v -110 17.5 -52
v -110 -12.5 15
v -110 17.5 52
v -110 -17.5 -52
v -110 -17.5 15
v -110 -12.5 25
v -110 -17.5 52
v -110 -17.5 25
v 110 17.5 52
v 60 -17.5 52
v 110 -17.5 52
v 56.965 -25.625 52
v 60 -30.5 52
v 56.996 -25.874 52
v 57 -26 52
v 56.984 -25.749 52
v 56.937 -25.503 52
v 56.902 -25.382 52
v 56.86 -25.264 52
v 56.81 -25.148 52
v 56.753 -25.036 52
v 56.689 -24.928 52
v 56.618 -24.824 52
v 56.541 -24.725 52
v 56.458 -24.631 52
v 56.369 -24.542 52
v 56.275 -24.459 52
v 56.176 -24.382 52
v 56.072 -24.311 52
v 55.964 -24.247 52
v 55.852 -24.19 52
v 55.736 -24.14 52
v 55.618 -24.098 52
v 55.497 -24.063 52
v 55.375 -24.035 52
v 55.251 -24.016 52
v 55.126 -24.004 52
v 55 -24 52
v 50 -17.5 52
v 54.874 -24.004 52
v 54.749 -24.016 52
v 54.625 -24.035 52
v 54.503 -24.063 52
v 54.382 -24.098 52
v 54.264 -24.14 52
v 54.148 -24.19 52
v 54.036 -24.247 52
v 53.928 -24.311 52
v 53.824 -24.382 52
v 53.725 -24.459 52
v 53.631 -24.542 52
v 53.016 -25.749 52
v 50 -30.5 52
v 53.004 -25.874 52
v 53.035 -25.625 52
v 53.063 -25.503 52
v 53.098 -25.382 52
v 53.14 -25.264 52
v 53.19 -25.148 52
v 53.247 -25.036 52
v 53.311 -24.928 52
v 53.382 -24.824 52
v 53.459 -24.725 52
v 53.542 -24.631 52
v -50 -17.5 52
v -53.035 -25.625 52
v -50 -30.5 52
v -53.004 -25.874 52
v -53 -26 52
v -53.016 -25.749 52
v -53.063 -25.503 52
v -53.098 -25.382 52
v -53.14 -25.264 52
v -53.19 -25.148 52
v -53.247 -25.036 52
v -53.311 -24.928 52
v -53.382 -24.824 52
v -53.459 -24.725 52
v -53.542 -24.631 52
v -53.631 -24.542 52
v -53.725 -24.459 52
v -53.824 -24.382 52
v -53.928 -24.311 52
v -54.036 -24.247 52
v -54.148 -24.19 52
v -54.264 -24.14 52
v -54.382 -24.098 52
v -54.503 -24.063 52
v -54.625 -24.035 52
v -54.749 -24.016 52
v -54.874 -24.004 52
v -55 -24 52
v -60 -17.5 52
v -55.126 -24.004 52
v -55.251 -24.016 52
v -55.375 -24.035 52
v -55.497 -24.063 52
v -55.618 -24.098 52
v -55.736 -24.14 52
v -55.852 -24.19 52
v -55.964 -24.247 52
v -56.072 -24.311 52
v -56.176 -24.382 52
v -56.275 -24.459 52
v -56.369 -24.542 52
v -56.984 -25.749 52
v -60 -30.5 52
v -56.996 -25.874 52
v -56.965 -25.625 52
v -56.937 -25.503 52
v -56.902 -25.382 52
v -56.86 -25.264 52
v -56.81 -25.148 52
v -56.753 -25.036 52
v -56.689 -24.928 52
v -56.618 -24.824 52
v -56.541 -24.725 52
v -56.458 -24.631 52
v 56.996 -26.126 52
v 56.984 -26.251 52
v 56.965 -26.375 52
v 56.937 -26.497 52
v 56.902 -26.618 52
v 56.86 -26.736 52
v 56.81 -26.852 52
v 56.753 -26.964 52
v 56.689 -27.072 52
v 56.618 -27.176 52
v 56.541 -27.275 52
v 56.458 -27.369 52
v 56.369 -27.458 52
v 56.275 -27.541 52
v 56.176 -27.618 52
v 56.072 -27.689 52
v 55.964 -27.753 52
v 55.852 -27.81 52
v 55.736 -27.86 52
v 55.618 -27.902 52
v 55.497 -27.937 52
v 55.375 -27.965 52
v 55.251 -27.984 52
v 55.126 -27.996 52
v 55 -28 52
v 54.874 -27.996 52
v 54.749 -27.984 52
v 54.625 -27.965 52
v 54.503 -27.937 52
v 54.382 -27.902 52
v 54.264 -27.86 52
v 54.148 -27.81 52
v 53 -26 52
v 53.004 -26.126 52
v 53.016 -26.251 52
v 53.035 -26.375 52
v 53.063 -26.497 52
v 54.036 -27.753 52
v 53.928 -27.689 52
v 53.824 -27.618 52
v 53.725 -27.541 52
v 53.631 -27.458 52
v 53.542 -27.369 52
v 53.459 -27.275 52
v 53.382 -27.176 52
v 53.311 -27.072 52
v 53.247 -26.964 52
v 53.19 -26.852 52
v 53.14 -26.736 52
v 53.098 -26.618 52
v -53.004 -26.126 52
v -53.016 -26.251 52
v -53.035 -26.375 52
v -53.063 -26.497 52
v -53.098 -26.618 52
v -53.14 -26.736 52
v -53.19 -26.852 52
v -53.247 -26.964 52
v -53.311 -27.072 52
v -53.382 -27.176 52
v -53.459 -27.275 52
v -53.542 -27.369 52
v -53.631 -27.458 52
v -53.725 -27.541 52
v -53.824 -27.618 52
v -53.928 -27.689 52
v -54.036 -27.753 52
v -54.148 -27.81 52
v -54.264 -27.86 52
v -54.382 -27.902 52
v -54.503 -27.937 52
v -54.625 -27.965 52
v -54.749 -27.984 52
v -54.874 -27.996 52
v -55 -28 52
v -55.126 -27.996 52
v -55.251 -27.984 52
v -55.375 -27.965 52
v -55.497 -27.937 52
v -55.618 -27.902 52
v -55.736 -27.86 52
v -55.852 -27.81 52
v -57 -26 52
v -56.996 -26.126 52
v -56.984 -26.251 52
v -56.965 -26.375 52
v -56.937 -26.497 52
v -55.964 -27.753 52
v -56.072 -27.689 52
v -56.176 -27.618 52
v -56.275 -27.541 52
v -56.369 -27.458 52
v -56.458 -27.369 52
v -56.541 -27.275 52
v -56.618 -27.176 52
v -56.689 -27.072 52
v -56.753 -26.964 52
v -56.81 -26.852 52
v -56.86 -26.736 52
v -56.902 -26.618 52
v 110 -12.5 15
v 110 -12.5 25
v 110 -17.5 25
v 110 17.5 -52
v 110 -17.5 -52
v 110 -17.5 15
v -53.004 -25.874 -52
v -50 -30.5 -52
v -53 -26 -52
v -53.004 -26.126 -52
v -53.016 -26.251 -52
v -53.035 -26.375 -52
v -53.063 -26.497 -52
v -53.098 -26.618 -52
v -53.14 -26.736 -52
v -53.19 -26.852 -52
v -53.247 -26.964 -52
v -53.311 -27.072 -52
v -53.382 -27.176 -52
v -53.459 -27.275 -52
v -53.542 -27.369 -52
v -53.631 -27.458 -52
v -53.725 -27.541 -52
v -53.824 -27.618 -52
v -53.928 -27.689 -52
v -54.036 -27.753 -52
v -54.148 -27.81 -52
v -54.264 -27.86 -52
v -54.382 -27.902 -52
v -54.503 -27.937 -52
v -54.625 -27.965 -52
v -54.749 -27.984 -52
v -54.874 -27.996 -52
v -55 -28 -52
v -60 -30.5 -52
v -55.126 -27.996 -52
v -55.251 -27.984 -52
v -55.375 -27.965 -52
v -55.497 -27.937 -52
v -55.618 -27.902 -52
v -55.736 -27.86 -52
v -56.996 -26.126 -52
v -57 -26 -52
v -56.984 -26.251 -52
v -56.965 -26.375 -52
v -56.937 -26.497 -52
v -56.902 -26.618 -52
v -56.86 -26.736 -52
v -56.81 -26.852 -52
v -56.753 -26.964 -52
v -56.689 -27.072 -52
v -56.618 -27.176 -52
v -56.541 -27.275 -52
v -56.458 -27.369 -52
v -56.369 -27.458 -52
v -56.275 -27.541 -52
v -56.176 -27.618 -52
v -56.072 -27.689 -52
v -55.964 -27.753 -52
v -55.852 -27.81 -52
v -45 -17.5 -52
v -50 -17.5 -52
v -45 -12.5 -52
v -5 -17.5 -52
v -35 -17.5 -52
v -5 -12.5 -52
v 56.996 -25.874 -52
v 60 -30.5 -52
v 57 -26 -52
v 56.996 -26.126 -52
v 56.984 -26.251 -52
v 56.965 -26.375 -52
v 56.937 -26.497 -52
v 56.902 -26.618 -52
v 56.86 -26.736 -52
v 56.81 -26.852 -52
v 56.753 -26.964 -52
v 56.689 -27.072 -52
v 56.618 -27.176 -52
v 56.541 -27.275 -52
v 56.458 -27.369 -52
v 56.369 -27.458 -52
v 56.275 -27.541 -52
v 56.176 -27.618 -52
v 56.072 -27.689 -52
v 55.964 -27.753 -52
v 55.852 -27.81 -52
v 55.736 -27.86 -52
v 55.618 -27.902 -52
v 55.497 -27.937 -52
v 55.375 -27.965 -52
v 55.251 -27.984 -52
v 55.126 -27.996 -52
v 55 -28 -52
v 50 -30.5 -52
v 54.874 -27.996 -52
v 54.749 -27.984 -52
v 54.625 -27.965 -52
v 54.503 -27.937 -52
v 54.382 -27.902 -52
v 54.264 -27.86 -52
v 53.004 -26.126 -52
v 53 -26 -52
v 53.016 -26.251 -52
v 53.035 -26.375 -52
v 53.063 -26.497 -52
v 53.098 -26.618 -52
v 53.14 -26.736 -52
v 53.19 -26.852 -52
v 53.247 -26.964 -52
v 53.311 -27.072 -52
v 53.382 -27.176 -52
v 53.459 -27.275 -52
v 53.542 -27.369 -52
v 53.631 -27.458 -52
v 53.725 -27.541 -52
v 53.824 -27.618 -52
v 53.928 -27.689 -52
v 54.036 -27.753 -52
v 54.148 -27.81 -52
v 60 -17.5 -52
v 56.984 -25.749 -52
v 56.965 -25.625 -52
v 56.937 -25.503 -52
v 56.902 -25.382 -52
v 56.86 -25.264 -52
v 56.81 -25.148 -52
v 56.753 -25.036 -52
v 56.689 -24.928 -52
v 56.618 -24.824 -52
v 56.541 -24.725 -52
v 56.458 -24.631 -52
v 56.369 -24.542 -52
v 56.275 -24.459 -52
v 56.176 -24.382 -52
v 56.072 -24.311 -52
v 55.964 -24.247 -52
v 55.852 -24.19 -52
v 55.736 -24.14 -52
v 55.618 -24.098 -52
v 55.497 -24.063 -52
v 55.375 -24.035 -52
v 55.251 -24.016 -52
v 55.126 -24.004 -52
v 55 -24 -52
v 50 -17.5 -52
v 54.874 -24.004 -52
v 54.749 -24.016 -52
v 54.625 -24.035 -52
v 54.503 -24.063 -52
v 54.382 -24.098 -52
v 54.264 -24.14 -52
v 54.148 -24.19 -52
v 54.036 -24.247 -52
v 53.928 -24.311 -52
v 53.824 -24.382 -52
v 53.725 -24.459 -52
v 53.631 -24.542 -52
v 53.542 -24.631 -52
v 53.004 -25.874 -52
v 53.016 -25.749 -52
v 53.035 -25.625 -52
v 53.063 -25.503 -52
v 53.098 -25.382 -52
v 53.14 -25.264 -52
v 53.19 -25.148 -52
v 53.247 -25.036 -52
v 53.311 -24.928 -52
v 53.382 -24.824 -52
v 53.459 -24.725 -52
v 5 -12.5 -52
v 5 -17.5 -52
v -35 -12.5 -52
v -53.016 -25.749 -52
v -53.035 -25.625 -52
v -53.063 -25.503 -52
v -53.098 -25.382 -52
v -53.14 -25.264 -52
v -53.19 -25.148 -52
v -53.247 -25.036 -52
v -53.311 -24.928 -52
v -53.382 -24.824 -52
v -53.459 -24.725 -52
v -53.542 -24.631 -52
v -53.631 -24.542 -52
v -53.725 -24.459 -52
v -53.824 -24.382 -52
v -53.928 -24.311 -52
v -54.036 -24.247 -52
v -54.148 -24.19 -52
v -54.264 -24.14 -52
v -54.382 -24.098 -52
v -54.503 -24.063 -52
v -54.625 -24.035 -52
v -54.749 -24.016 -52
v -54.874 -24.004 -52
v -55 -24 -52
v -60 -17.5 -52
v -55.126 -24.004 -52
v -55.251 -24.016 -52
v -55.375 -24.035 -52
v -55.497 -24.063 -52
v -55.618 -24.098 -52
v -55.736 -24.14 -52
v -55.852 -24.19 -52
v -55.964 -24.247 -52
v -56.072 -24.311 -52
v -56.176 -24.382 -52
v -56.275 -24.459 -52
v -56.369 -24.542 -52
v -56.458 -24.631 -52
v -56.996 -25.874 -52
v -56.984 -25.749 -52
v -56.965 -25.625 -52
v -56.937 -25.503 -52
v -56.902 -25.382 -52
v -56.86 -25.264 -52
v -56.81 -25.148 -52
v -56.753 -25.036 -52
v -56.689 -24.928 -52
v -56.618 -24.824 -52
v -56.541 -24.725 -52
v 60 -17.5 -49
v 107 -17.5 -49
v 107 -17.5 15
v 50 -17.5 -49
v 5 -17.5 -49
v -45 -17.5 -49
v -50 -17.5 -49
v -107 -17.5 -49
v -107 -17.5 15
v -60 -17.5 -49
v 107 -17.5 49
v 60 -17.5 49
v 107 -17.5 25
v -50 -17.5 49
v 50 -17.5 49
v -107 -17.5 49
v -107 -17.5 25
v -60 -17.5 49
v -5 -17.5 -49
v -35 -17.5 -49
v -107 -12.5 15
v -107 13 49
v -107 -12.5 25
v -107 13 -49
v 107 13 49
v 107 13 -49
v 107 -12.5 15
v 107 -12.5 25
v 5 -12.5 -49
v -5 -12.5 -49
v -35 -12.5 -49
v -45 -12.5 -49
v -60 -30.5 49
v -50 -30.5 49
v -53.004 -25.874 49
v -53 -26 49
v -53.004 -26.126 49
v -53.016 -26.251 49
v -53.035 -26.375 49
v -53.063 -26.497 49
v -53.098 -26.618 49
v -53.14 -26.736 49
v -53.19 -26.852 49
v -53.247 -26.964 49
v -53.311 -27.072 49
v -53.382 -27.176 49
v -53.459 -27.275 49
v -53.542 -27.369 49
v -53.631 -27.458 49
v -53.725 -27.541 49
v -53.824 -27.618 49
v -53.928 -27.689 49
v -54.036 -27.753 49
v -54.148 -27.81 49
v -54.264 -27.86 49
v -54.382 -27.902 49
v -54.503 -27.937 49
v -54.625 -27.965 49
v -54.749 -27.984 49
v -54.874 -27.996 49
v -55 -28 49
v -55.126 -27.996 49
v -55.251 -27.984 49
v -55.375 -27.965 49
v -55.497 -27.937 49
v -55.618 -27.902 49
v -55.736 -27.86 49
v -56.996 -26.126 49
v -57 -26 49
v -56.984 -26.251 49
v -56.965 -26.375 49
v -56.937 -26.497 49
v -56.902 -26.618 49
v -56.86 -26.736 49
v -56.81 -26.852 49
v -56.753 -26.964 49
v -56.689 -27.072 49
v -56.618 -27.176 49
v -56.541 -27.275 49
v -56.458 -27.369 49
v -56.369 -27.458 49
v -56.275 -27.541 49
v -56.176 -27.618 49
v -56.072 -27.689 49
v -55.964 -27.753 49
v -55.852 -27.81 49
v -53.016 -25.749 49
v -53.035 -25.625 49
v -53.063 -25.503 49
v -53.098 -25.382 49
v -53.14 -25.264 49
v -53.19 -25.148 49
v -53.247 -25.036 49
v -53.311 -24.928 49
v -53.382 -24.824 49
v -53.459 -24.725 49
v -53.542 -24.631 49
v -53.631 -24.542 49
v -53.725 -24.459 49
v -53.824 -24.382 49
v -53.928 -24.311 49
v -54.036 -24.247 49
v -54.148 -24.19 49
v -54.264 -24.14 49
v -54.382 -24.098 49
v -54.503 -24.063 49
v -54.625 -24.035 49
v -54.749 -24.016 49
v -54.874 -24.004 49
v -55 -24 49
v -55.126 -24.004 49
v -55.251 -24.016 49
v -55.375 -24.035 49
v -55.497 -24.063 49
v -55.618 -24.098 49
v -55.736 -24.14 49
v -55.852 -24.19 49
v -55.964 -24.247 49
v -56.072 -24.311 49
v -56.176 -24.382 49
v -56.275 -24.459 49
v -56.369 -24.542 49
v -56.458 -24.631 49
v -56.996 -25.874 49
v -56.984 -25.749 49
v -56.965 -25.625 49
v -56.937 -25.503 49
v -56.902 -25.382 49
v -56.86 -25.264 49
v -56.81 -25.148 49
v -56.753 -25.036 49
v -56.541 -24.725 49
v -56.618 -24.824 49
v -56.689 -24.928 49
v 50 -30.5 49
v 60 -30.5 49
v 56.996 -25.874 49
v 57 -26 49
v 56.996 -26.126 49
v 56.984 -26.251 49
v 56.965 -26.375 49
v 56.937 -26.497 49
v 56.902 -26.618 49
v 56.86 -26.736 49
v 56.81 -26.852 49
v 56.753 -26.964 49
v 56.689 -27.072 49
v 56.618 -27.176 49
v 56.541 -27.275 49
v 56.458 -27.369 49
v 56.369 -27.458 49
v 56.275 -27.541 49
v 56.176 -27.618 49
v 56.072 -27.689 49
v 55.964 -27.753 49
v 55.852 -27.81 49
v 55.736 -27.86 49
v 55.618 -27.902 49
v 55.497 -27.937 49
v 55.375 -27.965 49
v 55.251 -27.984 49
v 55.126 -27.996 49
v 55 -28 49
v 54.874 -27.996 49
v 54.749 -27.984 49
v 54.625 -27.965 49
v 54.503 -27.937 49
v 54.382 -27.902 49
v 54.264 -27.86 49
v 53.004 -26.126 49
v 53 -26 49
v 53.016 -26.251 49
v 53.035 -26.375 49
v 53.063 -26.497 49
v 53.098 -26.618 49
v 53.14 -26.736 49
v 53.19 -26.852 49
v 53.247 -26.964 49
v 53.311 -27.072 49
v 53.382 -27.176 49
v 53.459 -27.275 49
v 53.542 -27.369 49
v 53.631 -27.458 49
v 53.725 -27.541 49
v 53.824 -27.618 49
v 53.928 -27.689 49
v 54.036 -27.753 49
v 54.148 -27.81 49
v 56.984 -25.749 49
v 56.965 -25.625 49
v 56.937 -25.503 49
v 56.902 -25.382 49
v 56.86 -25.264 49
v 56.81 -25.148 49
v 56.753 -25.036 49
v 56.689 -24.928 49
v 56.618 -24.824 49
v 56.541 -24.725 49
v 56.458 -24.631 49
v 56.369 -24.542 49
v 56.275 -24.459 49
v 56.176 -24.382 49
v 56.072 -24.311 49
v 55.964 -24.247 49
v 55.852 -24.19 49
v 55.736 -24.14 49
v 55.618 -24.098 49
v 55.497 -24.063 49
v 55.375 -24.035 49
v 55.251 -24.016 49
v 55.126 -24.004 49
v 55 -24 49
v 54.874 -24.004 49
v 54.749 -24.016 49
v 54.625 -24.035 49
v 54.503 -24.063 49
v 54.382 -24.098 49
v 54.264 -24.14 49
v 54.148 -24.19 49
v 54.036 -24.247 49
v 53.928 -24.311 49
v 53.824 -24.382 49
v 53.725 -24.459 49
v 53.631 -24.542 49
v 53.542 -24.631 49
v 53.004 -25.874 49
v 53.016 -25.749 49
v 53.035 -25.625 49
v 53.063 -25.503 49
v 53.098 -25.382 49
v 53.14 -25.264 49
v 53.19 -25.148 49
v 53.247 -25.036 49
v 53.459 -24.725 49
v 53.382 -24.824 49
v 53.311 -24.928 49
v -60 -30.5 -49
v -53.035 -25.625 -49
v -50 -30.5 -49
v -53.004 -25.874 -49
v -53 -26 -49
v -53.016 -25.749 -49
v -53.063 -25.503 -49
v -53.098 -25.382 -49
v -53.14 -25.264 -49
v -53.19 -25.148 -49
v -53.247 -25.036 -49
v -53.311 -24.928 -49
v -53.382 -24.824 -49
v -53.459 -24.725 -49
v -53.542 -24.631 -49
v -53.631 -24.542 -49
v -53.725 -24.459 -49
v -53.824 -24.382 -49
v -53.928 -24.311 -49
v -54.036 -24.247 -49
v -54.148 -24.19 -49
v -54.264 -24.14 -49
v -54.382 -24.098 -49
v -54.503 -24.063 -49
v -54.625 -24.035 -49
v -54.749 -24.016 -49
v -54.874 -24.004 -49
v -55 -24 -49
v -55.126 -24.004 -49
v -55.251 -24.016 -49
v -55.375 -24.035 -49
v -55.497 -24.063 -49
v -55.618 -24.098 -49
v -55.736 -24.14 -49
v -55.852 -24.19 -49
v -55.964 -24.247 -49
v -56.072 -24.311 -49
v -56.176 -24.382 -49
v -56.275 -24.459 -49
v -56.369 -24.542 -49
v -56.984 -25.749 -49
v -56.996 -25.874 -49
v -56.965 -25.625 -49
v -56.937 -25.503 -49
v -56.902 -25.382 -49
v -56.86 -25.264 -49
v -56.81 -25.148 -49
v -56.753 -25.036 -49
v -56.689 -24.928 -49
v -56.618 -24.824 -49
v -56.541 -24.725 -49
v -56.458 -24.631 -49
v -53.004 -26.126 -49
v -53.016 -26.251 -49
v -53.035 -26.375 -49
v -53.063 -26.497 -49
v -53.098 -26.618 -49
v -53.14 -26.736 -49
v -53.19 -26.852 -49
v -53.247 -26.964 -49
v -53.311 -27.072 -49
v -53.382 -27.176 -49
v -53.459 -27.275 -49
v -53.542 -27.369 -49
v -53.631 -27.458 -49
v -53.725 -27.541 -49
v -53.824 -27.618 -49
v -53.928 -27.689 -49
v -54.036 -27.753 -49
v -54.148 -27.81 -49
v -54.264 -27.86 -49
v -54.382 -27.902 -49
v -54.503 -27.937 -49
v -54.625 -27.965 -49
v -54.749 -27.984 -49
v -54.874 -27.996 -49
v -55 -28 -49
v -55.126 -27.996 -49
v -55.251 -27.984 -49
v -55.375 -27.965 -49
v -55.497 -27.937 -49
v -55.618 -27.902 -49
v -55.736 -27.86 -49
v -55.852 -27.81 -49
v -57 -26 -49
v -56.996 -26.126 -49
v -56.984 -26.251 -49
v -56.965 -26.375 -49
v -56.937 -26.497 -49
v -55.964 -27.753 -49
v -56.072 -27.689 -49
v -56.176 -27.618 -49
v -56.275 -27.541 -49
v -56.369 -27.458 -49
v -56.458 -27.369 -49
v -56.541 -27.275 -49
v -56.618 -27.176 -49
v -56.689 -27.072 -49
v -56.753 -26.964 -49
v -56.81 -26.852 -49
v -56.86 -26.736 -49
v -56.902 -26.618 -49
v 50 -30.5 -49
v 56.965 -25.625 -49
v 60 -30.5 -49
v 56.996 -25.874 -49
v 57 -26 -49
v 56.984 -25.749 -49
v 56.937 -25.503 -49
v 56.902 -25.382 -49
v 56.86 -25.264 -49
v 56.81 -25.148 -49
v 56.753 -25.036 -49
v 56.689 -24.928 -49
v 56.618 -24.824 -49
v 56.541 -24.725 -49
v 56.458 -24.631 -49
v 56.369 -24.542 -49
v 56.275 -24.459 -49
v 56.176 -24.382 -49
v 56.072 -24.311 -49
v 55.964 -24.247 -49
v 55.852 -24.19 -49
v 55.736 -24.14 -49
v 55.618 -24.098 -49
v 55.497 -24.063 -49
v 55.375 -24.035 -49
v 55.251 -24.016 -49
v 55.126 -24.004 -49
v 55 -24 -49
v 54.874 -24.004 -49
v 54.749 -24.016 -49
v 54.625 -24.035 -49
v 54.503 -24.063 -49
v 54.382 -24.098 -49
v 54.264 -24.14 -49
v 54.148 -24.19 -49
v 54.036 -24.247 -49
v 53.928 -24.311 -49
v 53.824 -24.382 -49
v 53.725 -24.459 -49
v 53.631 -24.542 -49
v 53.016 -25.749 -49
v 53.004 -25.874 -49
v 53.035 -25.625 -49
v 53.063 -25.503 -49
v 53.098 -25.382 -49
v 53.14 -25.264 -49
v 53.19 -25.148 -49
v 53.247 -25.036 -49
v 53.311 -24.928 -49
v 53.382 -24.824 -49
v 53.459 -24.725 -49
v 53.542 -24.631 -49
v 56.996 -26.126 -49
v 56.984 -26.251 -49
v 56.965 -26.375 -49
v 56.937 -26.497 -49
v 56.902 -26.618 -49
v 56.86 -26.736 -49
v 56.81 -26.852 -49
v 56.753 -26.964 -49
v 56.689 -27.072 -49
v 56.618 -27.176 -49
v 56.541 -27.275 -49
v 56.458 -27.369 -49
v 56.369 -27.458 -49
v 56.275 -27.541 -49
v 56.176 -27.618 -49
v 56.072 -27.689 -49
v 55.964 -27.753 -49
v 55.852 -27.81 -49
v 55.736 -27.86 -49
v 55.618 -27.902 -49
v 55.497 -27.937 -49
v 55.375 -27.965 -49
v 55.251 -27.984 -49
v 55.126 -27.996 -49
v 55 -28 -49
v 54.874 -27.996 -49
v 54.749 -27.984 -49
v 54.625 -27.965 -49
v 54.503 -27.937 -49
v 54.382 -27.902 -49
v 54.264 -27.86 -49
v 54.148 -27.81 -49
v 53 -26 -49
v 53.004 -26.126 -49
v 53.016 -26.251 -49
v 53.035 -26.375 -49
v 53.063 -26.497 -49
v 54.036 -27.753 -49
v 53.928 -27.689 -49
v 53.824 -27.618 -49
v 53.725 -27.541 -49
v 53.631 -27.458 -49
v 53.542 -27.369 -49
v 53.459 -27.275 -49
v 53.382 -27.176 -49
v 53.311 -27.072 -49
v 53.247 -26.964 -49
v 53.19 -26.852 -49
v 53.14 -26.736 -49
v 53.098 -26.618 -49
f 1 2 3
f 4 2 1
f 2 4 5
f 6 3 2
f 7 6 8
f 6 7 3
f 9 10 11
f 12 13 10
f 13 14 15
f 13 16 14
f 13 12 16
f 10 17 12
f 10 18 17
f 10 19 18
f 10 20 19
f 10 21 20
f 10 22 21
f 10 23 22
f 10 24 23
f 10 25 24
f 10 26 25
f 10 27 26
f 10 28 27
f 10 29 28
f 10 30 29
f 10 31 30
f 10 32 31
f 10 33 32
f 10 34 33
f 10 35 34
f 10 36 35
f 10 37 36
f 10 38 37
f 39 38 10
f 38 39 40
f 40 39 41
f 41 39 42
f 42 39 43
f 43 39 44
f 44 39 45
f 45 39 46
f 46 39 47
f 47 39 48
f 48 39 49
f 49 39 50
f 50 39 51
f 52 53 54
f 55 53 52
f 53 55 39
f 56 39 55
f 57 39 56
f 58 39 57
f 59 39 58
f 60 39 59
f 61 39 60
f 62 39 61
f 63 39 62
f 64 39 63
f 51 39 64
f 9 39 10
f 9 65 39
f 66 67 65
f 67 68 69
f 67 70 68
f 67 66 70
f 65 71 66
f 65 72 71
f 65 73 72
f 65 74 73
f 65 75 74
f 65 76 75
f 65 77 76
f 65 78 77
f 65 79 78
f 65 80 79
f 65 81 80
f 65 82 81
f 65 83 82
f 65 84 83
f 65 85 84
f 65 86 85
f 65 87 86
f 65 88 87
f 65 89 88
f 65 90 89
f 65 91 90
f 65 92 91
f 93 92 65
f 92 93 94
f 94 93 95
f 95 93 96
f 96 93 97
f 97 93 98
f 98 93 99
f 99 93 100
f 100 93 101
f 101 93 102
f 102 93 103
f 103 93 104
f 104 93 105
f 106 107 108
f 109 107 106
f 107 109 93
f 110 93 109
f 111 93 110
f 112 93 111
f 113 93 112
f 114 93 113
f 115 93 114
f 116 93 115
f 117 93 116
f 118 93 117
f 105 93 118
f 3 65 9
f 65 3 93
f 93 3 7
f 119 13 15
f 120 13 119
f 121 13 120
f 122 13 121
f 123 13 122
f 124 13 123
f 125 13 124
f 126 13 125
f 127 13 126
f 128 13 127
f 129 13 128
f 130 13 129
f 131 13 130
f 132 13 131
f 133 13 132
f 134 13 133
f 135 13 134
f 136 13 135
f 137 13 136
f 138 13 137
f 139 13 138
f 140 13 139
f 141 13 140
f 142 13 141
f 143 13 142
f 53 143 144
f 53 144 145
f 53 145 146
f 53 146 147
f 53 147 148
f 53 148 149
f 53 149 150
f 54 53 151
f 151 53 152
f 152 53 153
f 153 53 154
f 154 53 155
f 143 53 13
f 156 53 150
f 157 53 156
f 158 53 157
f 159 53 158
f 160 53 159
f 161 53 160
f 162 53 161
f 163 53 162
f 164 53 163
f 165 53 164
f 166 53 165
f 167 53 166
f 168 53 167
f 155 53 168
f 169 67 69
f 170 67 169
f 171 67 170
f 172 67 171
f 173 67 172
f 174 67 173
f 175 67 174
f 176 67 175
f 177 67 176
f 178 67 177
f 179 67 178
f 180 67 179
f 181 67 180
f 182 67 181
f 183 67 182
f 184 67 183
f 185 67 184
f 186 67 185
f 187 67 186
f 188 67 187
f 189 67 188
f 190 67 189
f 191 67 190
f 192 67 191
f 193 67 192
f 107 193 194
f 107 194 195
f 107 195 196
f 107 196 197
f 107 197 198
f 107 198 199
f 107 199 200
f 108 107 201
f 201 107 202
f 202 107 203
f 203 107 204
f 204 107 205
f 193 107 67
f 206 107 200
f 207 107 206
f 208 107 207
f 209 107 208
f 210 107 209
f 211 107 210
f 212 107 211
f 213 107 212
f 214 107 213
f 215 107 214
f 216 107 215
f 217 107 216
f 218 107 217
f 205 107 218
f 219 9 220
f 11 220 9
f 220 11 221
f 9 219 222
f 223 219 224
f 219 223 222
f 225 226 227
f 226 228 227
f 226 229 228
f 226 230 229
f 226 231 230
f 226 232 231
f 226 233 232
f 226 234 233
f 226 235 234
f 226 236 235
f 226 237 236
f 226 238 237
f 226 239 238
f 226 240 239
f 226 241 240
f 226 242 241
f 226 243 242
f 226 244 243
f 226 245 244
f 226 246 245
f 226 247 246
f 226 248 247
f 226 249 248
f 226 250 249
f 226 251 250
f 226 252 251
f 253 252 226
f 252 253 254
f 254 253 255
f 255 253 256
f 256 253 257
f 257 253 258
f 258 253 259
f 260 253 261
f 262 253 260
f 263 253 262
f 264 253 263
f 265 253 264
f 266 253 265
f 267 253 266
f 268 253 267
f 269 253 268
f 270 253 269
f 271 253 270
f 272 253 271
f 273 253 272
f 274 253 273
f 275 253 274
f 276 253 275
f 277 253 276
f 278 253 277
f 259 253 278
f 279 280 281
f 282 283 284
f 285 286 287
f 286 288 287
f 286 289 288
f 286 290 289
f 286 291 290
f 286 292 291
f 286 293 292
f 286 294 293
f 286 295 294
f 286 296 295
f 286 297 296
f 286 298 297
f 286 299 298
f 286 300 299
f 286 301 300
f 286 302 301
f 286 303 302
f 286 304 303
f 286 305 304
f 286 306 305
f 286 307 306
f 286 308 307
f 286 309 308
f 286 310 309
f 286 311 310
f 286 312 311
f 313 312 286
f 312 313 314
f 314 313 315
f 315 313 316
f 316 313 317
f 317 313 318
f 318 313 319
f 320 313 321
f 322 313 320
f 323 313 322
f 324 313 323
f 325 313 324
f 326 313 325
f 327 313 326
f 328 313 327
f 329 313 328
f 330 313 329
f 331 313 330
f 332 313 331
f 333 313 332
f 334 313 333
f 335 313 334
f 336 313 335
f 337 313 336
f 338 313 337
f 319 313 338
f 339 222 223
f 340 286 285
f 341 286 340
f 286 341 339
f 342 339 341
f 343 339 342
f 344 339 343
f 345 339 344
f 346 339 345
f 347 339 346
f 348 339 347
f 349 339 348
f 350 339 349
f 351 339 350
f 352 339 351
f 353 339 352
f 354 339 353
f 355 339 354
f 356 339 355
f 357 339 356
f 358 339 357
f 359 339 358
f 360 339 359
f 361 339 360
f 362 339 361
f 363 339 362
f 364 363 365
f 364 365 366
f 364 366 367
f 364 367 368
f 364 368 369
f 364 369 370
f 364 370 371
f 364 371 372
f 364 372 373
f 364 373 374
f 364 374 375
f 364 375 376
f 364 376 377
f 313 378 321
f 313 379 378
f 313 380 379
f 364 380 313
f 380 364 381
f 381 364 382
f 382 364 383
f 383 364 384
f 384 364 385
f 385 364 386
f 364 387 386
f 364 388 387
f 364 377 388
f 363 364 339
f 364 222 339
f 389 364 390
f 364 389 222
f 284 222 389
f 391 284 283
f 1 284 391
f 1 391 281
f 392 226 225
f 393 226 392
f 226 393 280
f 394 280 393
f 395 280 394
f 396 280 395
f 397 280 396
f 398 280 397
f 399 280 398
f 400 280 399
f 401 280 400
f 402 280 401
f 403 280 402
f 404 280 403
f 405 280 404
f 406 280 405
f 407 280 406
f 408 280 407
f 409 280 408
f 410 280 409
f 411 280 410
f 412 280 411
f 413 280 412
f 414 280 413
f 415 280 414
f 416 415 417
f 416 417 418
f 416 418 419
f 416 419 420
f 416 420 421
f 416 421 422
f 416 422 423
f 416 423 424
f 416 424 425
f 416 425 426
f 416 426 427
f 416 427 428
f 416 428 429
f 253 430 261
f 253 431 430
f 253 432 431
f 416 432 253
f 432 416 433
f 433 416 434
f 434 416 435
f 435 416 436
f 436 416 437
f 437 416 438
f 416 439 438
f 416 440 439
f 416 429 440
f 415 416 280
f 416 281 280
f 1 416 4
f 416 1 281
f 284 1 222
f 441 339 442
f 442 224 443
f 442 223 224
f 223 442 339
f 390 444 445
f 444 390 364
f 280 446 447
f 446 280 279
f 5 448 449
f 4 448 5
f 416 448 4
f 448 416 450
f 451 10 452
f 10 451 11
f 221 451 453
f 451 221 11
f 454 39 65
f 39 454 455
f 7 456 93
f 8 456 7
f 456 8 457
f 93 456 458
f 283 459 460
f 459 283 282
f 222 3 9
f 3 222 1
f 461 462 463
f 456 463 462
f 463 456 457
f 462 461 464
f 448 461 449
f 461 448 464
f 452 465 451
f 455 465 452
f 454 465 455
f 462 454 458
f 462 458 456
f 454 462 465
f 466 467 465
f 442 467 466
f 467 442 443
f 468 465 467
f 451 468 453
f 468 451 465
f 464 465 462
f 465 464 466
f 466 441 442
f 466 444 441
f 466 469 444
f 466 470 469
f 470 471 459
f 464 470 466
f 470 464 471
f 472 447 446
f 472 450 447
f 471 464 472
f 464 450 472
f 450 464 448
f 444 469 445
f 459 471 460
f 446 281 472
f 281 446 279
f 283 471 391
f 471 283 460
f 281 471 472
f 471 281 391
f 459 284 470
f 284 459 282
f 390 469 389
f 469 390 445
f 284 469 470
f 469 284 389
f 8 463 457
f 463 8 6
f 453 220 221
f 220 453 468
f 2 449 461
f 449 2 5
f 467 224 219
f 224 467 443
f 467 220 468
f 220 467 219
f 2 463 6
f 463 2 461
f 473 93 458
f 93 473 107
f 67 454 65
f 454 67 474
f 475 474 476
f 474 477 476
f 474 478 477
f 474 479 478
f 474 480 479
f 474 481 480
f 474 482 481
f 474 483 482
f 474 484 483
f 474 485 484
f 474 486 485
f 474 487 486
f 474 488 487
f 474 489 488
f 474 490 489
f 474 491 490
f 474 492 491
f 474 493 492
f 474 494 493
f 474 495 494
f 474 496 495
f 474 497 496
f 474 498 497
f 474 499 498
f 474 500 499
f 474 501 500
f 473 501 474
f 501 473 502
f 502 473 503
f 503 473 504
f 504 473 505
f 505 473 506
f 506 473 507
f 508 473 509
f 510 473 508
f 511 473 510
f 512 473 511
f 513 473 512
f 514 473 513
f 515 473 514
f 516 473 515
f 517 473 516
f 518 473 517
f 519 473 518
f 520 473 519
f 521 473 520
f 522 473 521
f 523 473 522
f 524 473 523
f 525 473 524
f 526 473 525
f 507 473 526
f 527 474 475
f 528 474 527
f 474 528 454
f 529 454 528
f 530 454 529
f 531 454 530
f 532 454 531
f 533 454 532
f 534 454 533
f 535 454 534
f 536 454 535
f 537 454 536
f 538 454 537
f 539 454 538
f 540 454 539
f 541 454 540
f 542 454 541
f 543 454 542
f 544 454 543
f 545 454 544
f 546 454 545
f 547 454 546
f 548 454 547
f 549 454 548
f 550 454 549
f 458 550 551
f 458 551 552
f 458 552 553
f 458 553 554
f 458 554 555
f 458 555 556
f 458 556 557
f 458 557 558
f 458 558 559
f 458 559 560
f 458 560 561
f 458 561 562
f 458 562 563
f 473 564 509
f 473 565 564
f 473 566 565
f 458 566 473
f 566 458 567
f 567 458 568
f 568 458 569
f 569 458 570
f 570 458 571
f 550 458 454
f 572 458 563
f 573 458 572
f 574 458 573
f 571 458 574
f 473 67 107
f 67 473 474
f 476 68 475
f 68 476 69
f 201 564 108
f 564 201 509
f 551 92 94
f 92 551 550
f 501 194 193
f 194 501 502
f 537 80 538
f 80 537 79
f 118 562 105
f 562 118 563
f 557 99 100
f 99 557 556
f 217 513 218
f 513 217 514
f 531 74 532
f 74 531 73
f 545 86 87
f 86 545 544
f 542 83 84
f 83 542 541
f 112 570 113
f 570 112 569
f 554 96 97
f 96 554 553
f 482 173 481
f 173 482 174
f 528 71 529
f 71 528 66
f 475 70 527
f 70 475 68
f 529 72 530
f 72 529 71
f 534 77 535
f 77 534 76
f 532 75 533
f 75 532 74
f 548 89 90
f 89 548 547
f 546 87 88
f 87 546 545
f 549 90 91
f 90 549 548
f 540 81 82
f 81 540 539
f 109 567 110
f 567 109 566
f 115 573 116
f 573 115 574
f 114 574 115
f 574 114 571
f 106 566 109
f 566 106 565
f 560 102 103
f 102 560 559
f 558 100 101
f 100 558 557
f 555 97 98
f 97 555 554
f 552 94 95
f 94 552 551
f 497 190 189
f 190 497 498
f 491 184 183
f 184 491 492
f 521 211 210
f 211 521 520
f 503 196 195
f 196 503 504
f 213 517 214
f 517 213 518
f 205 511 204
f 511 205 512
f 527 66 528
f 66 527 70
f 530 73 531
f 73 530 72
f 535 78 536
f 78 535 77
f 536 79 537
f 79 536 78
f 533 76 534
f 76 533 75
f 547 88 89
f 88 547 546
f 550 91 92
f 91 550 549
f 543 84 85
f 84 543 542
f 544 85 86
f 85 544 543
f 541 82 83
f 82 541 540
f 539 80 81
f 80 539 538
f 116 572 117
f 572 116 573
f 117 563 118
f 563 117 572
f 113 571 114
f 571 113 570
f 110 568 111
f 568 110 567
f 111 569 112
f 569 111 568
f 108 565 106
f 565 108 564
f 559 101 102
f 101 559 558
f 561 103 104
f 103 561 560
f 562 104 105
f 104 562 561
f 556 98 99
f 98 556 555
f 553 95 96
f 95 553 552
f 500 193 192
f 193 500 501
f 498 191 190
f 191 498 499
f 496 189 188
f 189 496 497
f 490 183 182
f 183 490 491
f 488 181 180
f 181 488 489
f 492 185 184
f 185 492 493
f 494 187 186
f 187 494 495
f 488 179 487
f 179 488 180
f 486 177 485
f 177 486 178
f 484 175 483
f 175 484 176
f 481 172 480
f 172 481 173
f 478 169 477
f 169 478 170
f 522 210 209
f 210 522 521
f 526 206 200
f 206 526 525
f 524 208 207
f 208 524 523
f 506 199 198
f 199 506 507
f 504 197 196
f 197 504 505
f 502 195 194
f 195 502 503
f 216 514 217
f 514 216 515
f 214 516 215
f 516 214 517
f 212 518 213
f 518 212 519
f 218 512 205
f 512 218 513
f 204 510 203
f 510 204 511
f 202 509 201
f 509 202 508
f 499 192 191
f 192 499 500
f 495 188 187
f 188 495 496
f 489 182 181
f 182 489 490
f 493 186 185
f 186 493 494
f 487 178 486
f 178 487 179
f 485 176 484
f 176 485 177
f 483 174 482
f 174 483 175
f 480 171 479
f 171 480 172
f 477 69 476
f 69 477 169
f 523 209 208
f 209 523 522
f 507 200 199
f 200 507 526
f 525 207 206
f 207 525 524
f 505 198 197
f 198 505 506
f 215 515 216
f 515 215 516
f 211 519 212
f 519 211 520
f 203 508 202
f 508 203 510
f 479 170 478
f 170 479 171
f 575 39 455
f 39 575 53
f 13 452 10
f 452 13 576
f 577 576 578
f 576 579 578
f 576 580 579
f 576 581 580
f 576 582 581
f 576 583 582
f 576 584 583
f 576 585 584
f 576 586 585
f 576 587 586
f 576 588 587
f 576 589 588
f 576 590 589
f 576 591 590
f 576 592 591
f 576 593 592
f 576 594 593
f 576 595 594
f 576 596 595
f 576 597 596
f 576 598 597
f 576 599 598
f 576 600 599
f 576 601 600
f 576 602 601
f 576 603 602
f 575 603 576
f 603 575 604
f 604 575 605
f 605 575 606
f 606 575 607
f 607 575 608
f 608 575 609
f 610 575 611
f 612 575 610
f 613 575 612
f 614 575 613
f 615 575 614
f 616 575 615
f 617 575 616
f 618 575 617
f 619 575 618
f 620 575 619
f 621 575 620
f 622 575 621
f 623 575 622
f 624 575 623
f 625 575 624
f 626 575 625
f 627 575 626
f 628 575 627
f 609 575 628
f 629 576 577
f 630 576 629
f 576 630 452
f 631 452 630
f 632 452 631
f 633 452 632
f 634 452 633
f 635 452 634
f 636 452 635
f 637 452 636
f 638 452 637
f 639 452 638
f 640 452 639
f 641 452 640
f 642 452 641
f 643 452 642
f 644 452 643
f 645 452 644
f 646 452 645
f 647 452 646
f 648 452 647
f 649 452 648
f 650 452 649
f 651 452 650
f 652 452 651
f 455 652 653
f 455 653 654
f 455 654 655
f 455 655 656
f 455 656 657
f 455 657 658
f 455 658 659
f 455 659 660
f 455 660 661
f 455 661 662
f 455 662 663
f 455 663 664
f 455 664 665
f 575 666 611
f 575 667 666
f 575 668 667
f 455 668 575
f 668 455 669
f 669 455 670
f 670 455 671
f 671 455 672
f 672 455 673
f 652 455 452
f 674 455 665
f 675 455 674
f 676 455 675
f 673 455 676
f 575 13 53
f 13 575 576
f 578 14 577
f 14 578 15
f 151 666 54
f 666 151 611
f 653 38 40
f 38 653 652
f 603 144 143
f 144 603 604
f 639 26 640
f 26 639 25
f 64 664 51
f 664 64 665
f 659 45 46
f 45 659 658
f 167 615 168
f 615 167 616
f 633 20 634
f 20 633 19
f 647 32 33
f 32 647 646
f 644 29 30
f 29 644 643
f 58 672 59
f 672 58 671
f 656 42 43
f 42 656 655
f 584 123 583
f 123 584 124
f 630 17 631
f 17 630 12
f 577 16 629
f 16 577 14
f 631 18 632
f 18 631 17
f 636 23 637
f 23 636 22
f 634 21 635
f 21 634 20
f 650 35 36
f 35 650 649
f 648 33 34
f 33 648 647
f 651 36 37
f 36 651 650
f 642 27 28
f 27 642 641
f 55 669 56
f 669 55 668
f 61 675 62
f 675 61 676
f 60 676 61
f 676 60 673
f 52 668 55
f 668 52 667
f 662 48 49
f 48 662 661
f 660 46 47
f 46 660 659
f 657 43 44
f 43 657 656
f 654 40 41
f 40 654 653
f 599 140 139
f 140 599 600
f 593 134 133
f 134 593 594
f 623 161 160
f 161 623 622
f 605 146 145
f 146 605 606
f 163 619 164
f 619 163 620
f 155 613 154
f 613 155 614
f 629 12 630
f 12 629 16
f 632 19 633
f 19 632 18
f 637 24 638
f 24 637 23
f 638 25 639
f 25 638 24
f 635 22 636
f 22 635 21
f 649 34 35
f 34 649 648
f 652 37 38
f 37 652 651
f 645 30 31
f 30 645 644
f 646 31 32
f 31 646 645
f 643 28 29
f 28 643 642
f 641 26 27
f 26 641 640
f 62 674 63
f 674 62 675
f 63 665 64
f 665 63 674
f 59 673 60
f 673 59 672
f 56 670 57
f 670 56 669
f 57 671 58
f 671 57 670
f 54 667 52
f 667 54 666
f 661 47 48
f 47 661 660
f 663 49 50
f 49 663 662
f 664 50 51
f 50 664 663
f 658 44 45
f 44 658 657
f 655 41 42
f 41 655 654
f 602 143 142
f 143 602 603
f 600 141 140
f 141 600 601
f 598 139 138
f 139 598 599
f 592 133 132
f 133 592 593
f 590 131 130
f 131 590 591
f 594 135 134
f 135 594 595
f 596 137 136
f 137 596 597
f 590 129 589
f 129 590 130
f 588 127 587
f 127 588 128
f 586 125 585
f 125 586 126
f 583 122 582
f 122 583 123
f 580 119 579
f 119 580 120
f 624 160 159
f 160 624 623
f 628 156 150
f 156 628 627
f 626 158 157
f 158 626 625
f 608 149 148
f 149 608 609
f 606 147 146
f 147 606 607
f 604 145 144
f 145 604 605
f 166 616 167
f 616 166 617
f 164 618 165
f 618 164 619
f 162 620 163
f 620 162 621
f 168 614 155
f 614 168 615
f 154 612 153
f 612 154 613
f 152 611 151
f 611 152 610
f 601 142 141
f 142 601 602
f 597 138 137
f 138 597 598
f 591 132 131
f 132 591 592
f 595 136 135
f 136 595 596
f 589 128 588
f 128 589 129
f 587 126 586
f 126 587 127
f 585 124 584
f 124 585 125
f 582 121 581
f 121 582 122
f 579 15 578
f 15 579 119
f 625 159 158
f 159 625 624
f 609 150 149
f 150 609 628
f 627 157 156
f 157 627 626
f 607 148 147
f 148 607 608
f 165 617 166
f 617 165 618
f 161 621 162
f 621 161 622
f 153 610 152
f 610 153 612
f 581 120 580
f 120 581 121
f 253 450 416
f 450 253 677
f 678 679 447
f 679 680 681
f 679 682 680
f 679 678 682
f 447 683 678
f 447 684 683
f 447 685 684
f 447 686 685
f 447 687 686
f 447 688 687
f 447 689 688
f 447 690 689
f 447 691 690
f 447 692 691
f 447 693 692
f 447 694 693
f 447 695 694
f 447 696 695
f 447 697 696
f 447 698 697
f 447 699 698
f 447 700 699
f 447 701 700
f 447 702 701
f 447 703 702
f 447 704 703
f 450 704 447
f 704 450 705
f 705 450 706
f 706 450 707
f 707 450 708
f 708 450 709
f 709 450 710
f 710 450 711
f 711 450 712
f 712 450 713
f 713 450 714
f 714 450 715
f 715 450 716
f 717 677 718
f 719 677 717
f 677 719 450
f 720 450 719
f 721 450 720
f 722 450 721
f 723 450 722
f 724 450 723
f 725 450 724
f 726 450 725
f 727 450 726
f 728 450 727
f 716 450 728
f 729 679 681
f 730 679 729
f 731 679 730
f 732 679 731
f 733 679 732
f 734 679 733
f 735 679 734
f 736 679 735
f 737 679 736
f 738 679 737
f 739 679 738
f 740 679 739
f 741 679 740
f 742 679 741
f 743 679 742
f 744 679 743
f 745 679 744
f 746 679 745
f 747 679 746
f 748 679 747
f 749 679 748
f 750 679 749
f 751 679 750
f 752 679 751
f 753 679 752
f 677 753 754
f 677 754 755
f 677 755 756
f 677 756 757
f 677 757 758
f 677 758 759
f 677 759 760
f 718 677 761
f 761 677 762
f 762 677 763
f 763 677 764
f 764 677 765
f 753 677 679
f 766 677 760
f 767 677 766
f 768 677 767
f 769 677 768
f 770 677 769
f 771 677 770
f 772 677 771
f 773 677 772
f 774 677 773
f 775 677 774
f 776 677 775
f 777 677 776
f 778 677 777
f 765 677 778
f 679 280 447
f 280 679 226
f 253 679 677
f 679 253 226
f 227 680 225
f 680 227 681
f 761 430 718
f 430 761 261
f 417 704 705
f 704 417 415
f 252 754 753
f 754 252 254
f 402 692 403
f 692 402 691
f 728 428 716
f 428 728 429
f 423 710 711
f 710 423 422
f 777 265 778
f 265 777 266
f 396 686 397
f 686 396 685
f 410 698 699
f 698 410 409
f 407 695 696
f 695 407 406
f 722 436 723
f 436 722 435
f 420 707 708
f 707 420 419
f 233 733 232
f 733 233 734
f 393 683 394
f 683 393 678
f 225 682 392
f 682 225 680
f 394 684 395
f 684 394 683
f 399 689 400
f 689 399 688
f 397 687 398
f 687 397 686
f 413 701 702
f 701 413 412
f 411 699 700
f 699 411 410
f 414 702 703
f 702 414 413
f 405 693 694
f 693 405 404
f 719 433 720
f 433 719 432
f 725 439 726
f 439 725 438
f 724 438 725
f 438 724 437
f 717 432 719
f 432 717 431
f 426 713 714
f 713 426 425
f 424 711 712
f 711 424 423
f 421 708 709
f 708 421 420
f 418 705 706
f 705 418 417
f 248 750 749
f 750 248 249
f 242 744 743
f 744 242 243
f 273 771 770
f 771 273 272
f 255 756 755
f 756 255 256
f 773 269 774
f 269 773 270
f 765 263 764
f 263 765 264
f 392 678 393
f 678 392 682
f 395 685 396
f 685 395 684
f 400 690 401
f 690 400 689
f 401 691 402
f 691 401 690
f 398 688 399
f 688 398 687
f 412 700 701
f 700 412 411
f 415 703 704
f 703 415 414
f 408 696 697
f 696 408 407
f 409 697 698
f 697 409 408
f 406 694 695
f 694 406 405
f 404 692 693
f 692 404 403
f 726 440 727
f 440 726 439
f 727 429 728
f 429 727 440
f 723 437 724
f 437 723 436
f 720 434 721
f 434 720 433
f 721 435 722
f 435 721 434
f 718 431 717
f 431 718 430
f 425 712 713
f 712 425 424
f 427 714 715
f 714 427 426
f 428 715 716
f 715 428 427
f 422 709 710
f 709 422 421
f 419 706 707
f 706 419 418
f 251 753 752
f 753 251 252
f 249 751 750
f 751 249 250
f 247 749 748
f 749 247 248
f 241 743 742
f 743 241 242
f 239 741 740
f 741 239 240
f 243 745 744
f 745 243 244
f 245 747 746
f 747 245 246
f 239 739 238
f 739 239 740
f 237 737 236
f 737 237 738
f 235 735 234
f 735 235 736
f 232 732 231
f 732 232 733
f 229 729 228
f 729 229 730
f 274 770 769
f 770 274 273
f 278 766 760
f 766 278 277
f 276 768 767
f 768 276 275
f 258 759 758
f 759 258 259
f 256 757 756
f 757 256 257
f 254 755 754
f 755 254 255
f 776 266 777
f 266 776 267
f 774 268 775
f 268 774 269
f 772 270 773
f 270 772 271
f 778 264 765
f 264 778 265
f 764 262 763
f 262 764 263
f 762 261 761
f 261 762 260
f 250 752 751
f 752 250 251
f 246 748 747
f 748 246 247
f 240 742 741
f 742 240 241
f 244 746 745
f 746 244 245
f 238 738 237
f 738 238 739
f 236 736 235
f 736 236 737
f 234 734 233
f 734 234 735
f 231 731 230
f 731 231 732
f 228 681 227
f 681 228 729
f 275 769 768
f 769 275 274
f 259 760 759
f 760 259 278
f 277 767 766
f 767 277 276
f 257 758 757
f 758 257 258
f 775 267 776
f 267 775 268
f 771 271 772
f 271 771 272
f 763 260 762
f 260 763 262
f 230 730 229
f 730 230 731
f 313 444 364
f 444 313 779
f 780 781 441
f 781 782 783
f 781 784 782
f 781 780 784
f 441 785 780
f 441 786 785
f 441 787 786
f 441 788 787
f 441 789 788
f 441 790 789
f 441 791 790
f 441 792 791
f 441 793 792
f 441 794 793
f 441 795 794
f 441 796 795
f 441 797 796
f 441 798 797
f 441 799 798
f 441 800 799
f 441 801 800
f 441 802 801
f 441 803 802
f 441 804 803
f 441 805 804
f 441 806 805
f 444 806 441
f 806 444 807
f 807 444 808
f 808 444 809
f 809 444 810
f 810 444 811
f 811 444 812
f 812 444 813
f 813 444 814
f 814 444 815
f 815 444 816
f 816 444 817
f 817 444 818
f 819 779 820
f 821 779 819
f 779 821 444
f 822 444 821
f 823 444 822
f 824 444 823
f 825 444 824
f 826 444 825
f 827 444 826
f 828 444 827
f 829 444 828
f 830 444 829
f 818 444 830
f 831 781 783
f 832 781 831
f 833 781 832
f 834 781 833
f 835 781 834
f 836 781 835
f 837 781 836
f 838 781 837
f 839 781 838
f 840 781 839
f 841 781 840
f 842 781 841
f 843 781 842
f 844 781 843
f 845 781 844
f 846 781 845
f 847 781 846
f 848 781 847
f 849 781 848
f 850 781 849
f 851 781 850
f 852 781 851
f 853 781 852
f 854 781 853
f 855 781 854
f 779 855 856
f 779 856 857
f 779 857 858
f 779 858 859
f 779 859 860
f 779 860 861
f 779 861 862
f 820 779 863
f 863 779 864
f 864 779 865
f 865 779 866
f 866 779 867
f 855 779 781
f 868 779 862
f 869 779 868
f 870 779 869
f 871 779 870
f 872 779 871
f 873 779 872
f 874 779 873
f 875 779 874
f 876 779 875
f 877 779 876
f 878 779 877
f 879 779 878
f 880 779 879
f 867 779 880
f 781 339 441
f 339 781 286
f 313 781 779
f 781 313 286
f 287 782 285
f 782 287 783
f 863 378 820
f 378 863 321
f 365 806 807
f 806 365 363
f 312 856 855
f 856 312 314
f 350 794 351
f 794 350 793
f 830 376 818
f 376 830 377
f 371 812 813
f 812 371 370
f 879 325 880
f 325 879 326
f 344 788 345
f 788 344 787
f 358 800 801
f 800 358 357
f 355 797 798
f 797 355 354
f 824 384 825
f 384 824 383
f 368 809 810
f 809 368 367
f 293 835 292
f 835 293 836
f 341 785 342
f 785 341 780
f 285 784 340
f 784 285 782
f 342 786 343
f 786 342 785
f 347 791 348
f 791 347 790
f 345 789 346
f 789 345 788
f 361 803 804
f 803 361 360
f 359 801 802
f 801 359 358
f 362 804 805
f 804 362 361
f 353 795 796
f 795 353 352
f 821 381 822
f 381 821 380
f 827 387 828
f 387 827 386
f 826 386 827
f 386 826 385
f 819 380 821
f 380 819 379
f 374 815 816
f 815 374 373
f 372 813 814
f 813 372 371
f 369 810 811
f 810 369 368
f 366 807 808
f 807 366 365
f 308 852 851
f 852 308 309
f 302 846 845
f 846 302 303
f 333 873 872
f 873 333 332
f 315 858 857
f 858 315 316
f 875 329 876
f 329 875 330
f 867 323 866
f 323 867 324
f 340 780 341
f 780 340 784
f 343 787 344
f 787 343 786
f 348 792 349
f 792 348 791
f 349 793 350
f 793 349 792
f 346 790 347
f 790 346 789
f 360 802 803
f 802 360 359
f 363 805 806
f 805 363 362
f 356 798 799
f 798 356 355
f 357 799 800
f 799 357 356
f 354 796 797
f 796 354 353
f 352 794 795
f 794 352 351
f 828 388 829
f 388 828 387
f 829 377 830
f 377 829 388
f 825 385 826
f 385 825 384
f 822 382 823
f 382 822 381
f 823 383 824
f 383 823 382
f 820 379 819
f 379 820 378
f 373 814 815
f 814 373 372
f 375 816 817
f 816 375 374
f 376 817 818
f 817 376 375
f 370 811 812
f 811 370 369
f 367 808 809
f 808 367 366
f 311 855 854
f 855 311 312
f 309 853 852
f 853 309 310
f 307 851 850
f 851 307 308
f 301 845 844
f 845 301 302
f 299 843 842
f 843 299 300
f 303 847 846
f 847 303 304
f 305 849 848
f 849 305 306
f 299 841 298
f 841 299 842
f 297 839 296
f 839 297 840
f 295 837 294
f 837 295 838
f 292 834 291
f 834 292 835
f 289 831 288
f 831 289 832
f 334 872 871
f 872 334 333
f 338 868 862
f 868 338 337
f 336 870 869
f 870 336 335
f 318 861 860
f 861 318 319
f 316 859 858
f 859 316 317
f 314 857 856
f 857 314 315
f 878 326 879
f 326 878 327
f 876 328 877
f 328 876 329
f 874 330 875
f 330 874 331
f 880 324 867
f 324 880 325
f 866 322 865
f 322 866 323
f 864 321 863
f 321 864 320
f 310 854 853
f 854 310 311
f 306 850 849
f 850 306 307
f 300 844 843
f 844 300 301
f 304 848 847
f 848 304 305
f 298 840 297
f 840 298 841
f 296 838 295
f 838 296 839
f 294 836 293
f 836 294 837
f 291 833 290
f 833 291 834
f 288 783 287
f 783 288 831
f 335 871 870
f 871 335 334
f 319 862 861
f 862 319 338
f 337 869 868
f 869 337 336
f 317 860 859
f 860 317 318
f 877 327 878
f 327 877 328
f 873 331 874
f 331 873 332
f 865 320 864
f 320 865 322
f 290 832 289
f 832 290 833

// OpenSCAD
$fn = 100; // Resolucion del modelo

// Dimensiones gabinete
L = 220; // Largo (X)
H = 35; // Alto (Y)
W = 104; // Ancho (Z)
e = 3; // Espesor de paredes

// Dimensiones soportes de ajuste
rs = 2; // Radio de los tornillos
ls = 10; // Largo (X)
hs = 13; // Alto (Y)
ws = e; // Ancho (Z)

module soporte(){ // Soporte para atornillar
    difference(){
        cube([ls,hs,ws], center = true); // Marco

        translate([0,-2,0]) // Orificio
            cylinder(r = rs, h = e, center = true);
    }
}

union(){
    difference(){
        // Gabinete
        cube([L,H,W], center = true);
        
        // Interior
        translate([0,-e,0])
            cube([L-2*e,H-e,W-2*e], center = true);
        
        // Salida de cables
        translate([-40,-H/2+2.5,-W/2+e/2]) // Vcc
            cube([10,5,e], center = true);
        translate([0,-H/2+2.5,-W/2+e/2]) // I2C
            cube([10,5,e], center = true);
        translate([0,-H/2+2.5,20]) // Motores y EndStops
            cube([L,5,10], center = true);
    }

    translate([-55,-hs/2-H/2,W/2-e/2])
        soporte();

    translate([55,-hs/2-H/2,W/2-e/2])
        soporte();

    translate([-55,-hs/2-H/2,-W/2+e/2])
        soporte();

    translate([55,-hs/2-H/2,-W/2+e/2])
        soporte();
}
